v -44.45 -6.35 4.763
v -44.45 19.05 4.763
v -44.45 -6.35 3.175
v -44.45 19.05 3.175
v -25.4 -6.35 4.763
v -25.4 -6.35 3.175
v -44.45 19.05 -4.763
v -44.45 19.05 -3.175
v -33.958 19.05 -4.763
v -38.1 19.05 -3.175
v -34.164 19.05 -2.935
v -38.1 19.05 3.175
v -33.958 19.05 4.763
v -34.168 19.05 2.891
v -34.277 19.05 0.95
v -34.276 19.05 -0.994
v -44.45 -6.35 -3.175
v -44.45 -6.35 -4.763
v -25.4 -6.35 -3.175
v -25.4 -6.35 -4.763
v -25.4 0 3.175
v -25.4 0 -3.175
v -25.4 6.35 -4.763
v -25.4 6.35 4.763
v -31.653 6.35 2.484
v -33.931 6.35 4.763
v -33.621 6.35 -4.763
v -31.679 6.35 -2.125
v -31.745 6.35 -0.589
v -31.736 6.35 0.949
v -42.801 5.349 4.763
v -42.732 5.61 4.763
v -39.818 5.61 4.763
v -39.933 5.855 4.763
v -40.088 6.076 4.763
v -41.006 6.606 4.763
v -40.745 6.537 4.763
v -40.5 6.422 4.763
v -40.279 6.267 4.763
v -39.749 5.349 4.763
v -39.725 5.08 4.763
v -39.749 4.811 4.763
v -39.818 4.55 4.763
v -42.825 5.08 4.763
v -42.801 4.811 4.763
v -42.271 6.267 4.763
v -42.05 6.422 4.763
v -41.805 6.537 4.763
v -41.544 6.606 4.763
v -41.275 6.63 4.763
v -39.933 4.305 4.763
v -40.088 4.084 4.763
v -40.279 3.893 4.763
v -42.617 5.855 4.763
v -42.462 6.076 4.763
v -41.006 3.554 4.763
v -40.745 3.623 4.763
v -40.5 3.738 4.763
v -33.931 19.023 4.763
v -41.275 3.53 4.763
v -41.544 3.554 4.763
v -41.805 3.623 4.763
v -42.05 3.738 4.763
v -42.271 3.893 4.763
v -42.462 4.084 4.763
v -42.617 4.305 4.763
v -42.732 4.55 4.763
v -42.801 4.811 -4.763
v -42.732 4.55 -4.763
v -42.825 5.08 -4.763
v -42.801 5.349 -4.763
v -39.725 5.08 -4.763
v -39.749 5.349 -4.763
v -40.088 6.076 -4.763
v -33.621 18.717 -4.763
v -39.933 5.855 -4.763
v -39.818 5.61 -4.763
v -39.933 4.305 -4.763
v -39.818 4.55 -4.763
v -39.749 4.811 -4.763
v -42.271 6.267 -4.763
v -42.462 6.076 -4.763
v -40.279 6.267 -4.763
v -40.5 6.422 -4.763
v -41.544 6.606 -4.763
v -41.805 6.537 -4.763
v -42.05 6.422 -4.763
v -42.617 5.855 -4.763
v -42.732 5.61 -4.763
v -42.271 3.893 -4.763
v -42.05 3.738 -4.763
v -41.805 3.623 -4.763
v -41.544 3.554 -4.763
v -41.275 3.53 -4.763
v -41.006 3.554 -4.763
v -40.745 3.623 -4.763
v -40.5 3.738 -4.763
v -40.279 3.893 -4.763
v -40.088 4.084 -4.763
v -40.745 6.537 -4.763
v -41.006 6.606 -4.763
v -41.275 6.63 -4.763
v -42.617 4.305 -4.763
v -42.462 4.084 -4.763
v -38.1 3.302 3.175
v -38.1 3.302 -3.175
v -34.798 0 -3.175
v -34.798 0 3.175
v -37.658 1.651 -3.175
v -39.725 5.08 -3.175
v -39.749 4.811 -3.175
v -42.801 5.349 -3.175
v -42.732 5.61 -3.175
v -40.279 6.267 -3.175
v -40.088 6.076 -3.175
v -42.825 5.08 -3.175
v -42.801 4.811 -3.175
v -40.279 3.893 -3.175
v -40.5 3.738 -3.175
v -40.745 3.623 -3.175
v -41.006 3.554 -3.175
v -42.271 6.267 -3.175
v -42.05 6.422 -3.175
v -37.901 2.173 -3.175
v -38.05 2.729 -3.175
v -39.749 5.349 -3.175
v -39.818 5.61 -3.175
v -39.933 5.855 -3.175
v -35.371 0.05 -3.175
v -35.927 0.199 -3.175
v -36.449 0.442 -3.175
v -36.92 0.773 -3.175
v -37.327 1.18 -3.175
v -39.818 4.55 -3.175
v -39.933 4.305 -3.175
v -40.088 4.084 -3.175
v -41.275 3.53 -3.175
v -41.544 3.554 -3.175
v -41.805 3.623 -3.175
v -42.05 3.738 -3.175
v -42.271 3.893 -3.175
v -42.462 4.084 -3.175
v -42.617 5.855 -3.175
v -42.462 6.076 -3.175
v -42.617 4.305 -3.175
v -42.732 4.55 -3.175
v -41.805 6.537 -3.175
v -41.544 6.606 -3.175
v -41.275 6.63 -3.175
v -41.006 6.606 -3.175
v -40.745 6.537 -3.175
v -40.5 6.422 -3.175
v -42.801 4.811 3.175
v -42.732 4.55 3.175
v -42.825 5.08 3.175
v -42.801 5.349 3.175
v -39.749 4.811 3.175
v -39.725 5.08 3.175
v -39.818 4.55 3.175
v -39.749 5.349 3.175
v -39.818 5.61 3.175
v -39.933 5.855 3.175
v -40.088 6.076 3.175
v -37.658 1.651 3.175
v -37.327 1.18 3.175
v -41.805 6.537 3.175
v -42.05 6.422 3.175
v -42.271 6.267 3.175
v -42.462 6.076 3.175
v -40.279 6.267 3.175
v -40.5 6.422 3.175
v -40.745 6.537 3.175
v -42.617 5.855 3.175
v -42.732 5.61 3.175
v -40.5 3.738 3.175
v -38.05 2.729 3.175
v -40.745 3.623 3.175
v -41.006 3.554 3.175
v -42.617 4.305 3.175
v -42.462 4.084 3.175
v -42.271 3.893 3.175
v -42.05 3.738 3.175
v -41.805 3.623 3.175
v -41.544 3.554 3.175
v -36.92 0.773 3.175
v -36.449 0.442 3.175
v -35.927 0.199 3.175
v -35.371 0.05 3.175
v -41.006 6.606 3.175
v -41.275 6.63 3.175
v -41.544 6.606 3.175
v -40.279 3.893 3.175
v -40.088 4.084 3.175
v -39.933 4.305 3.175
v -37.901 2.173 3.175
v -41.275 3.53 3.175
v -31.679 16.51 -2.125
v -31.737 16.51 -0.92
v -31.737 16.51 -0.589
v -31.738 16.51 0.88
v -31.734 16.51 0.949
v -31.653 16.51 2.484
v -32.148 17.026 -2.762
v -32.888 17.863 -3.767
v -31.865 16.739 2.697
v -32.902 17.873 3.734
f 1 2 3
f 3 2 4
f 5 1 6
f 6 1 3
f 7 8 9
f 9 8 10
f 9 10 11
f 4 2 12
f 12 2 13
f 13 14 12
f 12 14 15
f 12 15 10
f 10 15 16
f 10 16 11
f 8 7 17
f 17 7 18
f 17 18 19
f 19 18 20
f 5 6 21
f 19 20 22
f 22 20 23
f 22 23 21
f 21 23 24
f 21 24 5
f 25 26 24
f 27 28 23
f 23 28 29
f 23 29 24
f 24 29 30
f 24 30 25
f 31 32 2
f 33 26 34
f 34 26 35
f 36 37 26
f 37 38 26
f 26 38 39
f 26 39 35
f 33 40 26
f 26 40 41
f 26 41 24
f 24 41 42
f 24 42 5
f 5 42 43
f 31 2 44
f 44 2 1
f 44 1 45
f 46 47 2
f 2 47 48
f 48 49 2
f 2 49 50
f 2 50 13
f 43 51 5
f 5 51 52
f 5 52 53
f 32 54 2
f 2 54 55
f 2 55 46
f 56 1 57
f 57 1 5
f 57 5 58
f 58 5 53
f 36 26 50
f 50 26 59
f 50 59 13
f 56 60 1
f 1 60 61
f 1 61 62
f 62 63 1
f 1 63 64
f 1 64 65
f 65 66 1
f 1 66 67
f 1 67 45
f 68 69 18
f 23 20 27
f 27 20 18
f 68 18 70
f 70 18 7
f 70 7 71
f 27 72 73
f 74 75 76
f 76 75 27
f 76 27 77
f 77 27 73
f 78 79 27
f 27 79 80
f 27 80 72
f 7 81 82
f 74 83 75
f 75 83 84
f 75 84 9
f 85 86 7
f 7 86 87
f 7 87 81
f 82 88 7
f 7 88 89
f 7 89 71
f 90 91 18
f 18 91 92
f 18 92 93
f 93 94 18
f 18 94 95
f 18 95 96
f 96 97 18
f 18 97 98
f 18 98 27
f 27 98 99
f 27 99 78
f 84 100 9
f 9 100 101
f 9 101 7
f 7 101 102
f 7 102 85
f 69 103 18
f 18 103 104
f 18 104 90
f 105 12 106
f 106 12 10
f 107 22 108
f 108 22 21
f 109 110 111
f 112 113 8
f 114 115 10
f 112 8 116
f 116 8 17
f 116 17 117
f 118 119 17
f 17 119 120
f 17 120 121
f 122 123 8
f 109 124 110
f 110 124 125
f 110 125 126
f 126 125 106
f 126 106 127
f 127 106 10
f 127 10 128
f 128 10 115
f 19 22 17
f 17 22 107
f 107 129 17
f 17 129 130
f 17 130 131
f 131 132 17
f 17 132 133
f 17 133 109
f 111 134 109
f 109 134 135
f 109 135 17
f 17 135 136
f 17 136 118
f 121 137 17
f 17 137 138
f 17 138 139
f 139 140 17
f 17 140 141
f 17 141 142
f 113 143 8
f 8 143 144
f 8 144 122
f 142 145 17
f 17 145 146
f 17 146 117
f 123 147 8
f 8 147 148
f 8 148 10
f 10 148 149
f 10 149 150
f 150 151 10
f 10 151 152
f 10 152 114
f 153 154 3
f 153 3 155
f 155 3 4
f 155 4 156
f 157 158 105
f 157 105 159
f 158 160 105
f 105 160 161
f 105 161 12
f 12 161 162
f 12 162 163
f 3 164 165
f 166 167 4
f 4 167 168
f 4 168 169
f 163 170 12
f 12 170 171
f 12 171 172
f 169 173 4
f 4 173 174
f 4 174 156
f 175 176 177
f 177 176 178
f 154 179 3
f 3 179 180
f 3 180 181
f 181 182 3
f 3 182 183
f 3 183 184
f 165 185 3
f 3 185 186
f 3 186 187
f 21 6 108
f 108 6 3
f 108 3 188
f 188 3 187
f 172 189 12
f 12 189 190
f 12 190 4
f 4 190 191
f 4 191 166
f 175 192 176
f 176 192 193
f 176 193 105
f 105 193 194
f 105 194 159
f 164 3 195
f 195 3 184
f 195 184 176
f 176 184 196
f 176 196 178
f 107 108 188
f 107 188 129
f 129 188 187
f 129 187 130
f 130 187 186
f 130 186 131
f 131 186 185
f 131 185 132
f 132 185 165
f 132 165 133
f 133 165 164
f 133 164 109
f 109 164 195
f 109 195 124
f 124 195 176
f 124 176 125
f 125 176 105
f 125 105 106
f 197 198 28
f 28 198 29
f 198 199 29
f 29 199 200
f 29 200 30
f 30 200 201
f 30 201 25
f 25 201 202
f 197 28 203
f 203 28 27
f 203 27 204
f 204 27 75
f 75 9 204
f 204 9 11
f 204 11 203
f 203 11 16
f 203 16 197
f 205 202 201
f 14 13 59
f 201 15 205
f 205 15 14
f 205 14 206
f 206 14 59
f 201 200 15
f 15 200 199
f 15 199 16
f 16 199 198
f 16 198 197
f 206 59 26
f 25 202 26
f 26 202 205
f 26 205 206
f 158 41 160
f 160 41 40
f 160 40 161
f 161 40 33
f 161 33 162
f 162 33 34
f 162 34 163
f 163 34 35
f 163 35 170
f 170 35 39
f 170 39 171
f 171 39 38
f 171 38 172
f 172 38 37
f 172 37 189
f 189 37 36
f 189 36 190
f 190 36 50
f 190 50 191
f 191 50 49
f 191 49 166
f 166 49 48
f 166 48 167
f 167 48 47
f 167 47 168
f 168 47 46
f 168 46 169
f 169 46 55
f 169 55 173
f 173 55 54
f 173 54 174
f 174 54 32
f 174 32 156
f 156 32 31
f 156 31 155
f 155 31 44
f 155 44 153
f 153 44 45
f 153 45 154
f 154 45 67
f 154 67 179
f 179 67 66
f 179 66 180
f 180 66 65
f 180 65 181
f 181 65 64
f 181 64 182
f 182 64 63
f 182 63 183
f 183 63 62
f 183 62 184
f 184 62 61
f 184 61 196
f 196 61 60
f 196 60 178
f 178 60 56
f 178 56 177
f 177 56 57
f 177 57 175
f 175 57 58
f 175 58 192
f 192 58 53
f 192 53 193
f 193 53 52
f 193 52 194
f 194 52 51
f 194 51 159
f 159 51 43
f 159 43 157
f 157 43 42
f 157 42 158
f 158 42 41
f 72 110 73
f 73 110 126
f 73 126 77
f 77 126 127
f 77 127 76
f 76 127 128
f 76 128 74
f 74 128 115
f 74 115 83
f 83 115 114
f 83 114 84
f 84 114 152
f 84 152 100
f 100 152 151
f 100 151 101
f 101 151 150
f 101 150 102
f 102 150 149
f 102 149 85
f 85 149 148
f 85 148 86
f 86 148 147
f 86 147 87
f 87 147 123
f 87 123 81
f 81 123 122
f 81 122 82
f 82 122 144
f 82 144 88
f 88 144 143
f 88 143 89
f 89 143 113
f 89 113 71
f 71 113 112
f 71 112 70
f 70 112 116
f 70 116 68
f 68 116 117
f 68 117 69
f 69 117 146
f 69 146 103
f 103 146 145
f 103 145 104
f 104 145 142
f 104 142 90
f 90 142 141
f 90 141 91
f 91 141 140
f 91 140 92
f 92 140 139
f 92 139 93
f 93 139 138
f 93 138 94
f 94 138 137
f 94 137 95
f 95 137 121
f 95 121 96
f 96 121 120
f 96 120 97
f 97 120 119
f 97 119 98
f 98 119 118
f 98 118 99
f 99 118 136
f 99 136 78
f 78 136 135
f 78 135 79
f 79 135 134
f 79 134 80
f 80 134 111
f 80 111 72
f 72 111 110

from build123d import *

# Parameters (mm, degrees)
BOSS_EXTRUDE1_DEPTH = 4.7625
CUT_EXTRUDE1_DEPTH  = 3.175
FILLET1_R           = 3.302
SKETCH3_R           = 31.75
CUT_EXTRUDE2_DEPTH  = 12.7
CHAMFER1_SIZE       = 2.23064129
CHAMFER1_SIZE_2     = 2.54
SKETCH4_R           = 1.55
CUT_EXTRUDE3_DEPTH  = 50.289254661


with BuildPart() as part:
    # Sketch1 → Boss-Extrude1 (new, symmetric)
    with BuildSketch(Plane.XY):
        Polygon((-44.45, 19.05), (-44.45, -6.35), (-25.4, -6.35), (-25.4, 6.35), (-28.575, 6.35), (-28.575, 19.05), align=None)
    extrude(amount=BOSS_EXTRUDE1_DEPTH, both=True)

    # Sketch2 → Cut-Extrude1 (cut, symmetric)
    with BuildSketch(Plane.XY):
        Polygon((-44.45, 19.05), (-38.1, 19.05), (-38.1, 0), (-25.4, 0), (-25.4, -6.35), (-44.45, -6.35), align=None)
    extrude(amount=CUT_EXTRUDE1_DEPTH, both=True, mode=Mode.SUBTRACT)

    # Fillet1
    fillet1_edges = [part.edges().sort_by_distance(p)[0] for p in [
        (-38.1, 0, 0),
    ]]
    fillet(fillet1_edges, radius=FILLET1_R)

    # Sketch3 → Cut-Extrude2 (cut)
    with BuildSketch(Plane(origin=(0, 19.05, 0), x_dir=(1, 0, 0), z_dir=(0, 1, 0))):
        Circle(SKETCH3_R)
    extrude(amount=-CUT_EXTRUDE2_DEPTH, mode=Mode.SUBTRACT)

    # Chamfer1
    # the kernel refuses this chamfer: 2.54, 2.23064129 mm, written as the material it takes off along each edge
    with BuildSketch(Plane(origin=(-31.390780394, 6.35, -4.7625), x_dir=(-1, 0, 0), z_dir=(0, 1, 0))) as chamfer1_piece_1:
        with BuildLine():
            Line((CHAMFER1_SIZE, 0), (0.288027051, 2.637492029))
            ThreePointArc((0.288027051, 2.637492029), (0.17562072, 1.352980867), (0, 0))
            Line((0, 0), (CHAMFER1_SIZE, 0))
        make_face()
    extrude(amount=19.52205078, mode=Mode.SUBTRACT)
    with BuildSketch(Plane(origin=(-31.390780394, 6.35, 4.7625), x_dir=(-0.11419845391674416, 0, -0.993457957400828), z_dir=(0, 1, 0))) as chamfer1_piece_2:
        with BuildLine():
            Line((2.293129868, 0), (CHAMFER1_SIZE_2 * 0.114198453917, CHAMFER1_SIZE_2 * 0.993457957401))
            Line((CHAMFER1_SIZE_2 * 0.114198453917, CHAMFER1_SIZE_2 * 0.993457957401), (0, 0))
            ThreePointArc((0, 0), (1.178209116, 0.020693522), (2.293129868, 0))
        make_face()
    extrude(amount=19.232074789, mode=Mode.SUBTRACT)
    with BuildSketch(Plane(origin=(0, 19.05, 0), x_dir=(-0.9371917542835735, 0, -0.34881458642504903), z_dir=(0.34881458642504903, 0, -0.9371917542835735))) as chamfer1_piece_3:
        Polygon((31.75, -CHAMFER1_SIZE_2), (31.75 + CHAMFER1_SIZE_2, 0), (31.75, 0), align=None)
    revolve(axis=Axis((0, 19.05, 0), (0, 1, 0)), revolution_arc=40.829654119, mode=Mode.SUBTRACT)

    # Sketch4 → Cut-Extrude3 (cut, through all)
    with BuildSketch(Plane.XY.offset(4.7625)):
        with Locations((-41.275, 5.08)):
            Circle(SKETCH4_R)
    extrude(amount=-CUT_EXTRUDE3_DEPTH, mode=Mode.SUBTRACT)


solid = part.part
